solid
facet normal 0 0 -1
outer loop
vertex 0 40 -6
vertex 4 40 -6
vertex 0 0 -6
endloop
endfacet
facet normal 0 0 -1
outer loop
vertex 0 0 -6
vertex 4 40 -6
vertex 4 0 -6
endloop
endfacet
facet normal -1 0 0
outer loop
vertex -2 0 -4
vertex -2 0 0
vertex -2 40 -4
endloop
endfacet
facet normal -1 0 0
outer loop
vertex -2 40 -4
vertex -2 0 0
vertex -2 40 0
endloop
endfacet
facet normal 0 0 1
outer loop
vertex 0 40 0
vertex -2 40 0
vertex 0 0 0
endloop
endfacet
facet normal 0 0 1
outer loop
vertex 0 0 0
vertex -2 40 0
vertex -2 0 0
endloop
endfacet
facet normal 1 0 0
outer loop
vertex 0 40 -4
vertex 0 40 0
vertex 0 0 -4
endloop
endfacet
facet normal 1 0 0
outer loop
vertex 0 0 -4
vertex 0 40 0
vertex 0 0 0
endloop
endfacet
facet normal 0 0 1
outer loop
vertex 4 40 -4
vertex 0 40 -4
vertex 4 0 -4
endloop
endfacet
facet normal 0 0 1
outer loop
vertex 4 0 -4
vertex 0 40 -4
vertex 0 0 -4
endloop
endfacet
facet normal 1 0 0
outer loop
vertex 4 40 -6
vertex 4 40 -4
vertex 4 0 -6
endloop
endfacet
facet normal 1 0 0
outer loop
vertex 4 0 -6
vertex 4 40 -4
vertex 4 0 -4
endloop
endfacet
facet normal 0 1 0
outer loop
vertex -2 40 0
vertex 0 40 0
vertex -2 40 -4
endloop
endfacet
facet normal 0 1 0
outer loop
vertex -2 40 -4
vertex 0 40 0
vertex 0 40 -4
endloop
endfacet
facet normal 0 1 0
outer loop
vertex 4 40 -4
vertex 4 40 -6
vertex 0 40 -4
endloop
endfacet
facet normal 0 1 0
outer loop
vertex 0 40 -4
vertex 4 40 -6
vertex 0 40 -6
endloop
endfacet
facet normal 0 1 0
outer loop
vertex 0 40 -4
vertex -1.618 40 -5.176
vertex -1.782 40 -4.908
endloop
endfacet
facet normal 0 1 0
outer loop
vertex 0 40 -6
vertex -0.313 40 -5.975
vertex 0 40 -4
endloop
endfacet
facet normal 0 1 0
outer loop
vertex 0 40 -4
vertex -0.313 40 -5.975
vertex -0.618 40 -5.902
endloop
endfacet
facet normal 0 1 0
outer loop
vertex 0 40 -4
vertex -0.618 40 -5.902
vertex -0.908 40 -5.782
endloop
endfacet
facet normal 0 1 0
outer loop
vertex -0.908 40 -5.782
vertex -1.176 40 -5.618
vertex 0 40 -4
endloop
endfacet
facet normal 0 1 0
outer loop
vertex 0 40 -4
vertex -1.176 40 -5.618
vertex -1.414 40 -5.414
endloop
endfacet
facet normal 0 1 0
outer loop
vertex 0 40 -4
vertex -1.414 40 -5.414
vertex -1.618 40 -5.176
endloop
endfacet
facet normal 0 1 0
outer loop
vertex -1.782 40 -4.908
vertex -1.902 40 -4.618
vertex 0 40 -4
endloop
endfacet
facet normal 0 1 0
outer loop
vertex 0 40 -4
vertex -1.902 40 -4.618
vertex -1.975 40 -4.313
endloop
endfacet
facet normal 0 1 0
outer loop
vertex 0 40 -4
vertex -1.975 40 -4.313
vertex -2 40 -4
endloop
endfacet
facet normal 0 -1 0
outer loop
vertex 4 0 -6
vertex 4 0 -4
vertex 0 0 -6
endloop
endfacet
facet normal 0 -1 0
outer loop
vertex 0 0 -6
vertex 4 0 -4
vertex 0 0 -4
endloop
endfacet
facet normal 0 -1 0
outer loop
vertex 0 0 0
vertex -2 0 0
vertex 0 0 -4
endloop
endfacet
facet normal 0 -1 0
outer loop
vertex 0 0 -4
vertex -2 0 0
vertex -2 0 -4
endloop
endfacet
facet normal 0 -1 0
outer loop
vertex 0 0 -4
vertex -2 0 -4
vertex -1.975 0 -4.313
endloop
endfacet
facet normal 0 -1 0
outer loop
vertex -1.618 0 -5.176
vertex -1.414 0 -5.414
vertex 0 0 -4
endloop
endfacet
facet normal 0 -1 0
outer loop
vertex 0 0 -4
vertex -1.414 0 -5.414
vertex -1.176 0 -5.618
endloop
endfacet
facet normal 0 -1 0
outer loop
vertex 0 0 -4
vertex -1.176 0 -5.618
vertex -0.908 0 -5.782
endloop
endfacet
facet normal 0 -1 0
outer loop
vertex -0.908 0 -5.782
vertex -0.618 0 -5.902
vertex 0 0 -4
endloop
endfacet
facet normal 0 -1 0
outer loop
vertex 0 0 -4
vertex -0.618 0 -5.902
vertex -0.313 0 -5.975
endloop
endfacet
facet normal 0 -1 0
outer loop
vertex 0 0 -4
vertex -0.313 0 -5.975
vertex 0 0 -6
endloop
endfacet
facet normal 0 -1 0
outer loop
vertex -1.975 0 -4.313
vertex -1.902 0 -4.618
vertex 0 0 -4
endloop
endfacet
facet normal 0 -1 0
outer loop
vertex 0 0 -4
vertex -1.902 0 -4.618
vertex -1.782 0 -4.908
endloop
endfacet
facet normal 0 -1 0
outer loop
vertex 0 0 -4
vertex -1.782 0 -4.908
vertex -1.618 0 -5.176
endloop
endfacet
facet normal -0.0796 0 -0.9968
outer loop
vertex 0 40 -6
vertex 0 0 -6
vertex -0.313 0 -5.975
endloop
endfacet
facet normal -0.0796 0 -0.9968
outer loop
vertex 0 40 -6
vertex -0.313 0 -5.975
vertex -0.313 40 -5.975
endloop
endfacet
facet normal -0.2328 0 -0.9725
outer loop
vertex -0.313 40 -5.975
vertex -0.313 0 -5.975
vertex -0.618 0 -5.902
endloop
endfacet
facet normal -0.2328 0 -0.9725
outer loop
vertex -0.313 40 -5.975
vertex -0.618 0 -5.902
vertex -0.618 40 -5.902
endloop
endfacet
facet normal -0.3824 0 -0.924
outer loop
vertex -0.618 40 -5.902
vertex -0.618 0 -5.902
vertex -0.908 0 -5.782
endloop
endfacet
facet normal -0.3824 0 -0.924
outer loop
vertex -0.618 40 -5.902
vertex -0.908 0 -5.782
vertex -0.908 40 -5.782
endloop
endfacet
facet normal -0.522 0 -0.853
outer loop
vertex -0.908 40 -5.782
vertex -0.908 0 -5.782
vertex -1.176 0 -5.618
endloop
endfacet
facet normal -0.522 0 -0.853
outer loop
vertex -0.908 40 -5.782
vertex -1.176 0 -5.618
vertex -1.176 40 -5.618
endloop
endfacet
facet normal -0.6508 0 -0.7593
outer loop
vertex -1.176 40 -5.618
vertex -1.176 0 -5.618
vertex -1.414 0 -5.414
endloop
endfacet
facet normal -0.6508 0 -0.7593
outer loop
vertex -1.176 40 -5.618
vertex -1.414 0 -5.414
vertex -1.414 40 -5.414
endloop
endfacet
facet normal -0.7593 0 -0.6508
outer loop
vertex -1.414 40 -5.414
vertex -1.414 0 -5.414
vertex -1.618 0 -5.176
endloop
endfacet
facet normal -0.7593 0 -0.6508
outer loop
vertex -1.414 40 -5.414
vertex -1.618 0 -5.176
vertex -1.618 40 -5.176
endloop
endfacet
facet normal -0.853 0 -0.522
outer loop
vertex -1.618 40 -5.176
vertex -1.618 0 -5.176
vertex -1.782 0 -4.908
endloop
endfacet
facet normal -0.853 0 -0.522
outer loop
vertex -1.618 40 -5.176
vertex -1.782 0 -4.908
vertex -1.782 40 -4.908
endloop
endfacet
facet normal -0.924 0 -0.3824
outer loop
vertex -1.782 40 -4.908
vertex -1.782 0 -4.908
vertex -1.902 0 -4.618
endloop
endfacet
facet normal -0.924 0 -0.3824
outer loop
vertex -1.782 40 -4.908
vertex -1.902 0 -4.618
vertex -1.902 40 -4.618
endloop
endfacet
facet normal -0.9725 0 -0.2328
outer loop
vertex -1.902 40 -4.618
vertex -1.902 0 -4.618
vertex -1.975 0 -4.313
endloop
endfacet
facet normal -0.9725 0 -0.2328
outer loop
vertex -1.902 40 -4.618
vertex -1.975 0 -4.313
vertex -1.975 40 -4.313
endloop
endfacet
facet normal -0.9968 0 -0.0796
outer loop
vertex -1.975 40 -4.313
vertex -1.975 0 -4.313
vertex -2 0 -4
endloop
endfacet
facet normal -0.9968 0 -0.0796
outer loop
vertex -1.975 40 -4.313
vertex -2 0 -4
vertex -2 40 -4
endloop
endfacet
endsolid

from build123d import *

# Parameters (mm, degrees)
BOSS_EXTRUDE1_DEPTH = 40
FILLET1_R           = 2


with BuildPart() as part:
    # Sketch1 → Boss-Extrude1 (new body)
    with BuildSketch(Plane(origin=(0, 0, 0), x_dir=(1, 0, 0), z_dir=(0, 1, 0))):
        Polygon((0, 0), (-2, 0), (-2, 6), (4, 6), (4, 4), (0, 4), (0, 0.889632107), align=None)
    extrude(amount=BOSS_EXTRUDE1_DEPTH)

    # Fillet1
    fillet1_edges = [part.edges().sort_by_distance(p)[0] for p in [
        (-2, 20, -6),
    ]]
    fillet(fillet1_edges, radius=FILLET1_R)


solid = part.part
